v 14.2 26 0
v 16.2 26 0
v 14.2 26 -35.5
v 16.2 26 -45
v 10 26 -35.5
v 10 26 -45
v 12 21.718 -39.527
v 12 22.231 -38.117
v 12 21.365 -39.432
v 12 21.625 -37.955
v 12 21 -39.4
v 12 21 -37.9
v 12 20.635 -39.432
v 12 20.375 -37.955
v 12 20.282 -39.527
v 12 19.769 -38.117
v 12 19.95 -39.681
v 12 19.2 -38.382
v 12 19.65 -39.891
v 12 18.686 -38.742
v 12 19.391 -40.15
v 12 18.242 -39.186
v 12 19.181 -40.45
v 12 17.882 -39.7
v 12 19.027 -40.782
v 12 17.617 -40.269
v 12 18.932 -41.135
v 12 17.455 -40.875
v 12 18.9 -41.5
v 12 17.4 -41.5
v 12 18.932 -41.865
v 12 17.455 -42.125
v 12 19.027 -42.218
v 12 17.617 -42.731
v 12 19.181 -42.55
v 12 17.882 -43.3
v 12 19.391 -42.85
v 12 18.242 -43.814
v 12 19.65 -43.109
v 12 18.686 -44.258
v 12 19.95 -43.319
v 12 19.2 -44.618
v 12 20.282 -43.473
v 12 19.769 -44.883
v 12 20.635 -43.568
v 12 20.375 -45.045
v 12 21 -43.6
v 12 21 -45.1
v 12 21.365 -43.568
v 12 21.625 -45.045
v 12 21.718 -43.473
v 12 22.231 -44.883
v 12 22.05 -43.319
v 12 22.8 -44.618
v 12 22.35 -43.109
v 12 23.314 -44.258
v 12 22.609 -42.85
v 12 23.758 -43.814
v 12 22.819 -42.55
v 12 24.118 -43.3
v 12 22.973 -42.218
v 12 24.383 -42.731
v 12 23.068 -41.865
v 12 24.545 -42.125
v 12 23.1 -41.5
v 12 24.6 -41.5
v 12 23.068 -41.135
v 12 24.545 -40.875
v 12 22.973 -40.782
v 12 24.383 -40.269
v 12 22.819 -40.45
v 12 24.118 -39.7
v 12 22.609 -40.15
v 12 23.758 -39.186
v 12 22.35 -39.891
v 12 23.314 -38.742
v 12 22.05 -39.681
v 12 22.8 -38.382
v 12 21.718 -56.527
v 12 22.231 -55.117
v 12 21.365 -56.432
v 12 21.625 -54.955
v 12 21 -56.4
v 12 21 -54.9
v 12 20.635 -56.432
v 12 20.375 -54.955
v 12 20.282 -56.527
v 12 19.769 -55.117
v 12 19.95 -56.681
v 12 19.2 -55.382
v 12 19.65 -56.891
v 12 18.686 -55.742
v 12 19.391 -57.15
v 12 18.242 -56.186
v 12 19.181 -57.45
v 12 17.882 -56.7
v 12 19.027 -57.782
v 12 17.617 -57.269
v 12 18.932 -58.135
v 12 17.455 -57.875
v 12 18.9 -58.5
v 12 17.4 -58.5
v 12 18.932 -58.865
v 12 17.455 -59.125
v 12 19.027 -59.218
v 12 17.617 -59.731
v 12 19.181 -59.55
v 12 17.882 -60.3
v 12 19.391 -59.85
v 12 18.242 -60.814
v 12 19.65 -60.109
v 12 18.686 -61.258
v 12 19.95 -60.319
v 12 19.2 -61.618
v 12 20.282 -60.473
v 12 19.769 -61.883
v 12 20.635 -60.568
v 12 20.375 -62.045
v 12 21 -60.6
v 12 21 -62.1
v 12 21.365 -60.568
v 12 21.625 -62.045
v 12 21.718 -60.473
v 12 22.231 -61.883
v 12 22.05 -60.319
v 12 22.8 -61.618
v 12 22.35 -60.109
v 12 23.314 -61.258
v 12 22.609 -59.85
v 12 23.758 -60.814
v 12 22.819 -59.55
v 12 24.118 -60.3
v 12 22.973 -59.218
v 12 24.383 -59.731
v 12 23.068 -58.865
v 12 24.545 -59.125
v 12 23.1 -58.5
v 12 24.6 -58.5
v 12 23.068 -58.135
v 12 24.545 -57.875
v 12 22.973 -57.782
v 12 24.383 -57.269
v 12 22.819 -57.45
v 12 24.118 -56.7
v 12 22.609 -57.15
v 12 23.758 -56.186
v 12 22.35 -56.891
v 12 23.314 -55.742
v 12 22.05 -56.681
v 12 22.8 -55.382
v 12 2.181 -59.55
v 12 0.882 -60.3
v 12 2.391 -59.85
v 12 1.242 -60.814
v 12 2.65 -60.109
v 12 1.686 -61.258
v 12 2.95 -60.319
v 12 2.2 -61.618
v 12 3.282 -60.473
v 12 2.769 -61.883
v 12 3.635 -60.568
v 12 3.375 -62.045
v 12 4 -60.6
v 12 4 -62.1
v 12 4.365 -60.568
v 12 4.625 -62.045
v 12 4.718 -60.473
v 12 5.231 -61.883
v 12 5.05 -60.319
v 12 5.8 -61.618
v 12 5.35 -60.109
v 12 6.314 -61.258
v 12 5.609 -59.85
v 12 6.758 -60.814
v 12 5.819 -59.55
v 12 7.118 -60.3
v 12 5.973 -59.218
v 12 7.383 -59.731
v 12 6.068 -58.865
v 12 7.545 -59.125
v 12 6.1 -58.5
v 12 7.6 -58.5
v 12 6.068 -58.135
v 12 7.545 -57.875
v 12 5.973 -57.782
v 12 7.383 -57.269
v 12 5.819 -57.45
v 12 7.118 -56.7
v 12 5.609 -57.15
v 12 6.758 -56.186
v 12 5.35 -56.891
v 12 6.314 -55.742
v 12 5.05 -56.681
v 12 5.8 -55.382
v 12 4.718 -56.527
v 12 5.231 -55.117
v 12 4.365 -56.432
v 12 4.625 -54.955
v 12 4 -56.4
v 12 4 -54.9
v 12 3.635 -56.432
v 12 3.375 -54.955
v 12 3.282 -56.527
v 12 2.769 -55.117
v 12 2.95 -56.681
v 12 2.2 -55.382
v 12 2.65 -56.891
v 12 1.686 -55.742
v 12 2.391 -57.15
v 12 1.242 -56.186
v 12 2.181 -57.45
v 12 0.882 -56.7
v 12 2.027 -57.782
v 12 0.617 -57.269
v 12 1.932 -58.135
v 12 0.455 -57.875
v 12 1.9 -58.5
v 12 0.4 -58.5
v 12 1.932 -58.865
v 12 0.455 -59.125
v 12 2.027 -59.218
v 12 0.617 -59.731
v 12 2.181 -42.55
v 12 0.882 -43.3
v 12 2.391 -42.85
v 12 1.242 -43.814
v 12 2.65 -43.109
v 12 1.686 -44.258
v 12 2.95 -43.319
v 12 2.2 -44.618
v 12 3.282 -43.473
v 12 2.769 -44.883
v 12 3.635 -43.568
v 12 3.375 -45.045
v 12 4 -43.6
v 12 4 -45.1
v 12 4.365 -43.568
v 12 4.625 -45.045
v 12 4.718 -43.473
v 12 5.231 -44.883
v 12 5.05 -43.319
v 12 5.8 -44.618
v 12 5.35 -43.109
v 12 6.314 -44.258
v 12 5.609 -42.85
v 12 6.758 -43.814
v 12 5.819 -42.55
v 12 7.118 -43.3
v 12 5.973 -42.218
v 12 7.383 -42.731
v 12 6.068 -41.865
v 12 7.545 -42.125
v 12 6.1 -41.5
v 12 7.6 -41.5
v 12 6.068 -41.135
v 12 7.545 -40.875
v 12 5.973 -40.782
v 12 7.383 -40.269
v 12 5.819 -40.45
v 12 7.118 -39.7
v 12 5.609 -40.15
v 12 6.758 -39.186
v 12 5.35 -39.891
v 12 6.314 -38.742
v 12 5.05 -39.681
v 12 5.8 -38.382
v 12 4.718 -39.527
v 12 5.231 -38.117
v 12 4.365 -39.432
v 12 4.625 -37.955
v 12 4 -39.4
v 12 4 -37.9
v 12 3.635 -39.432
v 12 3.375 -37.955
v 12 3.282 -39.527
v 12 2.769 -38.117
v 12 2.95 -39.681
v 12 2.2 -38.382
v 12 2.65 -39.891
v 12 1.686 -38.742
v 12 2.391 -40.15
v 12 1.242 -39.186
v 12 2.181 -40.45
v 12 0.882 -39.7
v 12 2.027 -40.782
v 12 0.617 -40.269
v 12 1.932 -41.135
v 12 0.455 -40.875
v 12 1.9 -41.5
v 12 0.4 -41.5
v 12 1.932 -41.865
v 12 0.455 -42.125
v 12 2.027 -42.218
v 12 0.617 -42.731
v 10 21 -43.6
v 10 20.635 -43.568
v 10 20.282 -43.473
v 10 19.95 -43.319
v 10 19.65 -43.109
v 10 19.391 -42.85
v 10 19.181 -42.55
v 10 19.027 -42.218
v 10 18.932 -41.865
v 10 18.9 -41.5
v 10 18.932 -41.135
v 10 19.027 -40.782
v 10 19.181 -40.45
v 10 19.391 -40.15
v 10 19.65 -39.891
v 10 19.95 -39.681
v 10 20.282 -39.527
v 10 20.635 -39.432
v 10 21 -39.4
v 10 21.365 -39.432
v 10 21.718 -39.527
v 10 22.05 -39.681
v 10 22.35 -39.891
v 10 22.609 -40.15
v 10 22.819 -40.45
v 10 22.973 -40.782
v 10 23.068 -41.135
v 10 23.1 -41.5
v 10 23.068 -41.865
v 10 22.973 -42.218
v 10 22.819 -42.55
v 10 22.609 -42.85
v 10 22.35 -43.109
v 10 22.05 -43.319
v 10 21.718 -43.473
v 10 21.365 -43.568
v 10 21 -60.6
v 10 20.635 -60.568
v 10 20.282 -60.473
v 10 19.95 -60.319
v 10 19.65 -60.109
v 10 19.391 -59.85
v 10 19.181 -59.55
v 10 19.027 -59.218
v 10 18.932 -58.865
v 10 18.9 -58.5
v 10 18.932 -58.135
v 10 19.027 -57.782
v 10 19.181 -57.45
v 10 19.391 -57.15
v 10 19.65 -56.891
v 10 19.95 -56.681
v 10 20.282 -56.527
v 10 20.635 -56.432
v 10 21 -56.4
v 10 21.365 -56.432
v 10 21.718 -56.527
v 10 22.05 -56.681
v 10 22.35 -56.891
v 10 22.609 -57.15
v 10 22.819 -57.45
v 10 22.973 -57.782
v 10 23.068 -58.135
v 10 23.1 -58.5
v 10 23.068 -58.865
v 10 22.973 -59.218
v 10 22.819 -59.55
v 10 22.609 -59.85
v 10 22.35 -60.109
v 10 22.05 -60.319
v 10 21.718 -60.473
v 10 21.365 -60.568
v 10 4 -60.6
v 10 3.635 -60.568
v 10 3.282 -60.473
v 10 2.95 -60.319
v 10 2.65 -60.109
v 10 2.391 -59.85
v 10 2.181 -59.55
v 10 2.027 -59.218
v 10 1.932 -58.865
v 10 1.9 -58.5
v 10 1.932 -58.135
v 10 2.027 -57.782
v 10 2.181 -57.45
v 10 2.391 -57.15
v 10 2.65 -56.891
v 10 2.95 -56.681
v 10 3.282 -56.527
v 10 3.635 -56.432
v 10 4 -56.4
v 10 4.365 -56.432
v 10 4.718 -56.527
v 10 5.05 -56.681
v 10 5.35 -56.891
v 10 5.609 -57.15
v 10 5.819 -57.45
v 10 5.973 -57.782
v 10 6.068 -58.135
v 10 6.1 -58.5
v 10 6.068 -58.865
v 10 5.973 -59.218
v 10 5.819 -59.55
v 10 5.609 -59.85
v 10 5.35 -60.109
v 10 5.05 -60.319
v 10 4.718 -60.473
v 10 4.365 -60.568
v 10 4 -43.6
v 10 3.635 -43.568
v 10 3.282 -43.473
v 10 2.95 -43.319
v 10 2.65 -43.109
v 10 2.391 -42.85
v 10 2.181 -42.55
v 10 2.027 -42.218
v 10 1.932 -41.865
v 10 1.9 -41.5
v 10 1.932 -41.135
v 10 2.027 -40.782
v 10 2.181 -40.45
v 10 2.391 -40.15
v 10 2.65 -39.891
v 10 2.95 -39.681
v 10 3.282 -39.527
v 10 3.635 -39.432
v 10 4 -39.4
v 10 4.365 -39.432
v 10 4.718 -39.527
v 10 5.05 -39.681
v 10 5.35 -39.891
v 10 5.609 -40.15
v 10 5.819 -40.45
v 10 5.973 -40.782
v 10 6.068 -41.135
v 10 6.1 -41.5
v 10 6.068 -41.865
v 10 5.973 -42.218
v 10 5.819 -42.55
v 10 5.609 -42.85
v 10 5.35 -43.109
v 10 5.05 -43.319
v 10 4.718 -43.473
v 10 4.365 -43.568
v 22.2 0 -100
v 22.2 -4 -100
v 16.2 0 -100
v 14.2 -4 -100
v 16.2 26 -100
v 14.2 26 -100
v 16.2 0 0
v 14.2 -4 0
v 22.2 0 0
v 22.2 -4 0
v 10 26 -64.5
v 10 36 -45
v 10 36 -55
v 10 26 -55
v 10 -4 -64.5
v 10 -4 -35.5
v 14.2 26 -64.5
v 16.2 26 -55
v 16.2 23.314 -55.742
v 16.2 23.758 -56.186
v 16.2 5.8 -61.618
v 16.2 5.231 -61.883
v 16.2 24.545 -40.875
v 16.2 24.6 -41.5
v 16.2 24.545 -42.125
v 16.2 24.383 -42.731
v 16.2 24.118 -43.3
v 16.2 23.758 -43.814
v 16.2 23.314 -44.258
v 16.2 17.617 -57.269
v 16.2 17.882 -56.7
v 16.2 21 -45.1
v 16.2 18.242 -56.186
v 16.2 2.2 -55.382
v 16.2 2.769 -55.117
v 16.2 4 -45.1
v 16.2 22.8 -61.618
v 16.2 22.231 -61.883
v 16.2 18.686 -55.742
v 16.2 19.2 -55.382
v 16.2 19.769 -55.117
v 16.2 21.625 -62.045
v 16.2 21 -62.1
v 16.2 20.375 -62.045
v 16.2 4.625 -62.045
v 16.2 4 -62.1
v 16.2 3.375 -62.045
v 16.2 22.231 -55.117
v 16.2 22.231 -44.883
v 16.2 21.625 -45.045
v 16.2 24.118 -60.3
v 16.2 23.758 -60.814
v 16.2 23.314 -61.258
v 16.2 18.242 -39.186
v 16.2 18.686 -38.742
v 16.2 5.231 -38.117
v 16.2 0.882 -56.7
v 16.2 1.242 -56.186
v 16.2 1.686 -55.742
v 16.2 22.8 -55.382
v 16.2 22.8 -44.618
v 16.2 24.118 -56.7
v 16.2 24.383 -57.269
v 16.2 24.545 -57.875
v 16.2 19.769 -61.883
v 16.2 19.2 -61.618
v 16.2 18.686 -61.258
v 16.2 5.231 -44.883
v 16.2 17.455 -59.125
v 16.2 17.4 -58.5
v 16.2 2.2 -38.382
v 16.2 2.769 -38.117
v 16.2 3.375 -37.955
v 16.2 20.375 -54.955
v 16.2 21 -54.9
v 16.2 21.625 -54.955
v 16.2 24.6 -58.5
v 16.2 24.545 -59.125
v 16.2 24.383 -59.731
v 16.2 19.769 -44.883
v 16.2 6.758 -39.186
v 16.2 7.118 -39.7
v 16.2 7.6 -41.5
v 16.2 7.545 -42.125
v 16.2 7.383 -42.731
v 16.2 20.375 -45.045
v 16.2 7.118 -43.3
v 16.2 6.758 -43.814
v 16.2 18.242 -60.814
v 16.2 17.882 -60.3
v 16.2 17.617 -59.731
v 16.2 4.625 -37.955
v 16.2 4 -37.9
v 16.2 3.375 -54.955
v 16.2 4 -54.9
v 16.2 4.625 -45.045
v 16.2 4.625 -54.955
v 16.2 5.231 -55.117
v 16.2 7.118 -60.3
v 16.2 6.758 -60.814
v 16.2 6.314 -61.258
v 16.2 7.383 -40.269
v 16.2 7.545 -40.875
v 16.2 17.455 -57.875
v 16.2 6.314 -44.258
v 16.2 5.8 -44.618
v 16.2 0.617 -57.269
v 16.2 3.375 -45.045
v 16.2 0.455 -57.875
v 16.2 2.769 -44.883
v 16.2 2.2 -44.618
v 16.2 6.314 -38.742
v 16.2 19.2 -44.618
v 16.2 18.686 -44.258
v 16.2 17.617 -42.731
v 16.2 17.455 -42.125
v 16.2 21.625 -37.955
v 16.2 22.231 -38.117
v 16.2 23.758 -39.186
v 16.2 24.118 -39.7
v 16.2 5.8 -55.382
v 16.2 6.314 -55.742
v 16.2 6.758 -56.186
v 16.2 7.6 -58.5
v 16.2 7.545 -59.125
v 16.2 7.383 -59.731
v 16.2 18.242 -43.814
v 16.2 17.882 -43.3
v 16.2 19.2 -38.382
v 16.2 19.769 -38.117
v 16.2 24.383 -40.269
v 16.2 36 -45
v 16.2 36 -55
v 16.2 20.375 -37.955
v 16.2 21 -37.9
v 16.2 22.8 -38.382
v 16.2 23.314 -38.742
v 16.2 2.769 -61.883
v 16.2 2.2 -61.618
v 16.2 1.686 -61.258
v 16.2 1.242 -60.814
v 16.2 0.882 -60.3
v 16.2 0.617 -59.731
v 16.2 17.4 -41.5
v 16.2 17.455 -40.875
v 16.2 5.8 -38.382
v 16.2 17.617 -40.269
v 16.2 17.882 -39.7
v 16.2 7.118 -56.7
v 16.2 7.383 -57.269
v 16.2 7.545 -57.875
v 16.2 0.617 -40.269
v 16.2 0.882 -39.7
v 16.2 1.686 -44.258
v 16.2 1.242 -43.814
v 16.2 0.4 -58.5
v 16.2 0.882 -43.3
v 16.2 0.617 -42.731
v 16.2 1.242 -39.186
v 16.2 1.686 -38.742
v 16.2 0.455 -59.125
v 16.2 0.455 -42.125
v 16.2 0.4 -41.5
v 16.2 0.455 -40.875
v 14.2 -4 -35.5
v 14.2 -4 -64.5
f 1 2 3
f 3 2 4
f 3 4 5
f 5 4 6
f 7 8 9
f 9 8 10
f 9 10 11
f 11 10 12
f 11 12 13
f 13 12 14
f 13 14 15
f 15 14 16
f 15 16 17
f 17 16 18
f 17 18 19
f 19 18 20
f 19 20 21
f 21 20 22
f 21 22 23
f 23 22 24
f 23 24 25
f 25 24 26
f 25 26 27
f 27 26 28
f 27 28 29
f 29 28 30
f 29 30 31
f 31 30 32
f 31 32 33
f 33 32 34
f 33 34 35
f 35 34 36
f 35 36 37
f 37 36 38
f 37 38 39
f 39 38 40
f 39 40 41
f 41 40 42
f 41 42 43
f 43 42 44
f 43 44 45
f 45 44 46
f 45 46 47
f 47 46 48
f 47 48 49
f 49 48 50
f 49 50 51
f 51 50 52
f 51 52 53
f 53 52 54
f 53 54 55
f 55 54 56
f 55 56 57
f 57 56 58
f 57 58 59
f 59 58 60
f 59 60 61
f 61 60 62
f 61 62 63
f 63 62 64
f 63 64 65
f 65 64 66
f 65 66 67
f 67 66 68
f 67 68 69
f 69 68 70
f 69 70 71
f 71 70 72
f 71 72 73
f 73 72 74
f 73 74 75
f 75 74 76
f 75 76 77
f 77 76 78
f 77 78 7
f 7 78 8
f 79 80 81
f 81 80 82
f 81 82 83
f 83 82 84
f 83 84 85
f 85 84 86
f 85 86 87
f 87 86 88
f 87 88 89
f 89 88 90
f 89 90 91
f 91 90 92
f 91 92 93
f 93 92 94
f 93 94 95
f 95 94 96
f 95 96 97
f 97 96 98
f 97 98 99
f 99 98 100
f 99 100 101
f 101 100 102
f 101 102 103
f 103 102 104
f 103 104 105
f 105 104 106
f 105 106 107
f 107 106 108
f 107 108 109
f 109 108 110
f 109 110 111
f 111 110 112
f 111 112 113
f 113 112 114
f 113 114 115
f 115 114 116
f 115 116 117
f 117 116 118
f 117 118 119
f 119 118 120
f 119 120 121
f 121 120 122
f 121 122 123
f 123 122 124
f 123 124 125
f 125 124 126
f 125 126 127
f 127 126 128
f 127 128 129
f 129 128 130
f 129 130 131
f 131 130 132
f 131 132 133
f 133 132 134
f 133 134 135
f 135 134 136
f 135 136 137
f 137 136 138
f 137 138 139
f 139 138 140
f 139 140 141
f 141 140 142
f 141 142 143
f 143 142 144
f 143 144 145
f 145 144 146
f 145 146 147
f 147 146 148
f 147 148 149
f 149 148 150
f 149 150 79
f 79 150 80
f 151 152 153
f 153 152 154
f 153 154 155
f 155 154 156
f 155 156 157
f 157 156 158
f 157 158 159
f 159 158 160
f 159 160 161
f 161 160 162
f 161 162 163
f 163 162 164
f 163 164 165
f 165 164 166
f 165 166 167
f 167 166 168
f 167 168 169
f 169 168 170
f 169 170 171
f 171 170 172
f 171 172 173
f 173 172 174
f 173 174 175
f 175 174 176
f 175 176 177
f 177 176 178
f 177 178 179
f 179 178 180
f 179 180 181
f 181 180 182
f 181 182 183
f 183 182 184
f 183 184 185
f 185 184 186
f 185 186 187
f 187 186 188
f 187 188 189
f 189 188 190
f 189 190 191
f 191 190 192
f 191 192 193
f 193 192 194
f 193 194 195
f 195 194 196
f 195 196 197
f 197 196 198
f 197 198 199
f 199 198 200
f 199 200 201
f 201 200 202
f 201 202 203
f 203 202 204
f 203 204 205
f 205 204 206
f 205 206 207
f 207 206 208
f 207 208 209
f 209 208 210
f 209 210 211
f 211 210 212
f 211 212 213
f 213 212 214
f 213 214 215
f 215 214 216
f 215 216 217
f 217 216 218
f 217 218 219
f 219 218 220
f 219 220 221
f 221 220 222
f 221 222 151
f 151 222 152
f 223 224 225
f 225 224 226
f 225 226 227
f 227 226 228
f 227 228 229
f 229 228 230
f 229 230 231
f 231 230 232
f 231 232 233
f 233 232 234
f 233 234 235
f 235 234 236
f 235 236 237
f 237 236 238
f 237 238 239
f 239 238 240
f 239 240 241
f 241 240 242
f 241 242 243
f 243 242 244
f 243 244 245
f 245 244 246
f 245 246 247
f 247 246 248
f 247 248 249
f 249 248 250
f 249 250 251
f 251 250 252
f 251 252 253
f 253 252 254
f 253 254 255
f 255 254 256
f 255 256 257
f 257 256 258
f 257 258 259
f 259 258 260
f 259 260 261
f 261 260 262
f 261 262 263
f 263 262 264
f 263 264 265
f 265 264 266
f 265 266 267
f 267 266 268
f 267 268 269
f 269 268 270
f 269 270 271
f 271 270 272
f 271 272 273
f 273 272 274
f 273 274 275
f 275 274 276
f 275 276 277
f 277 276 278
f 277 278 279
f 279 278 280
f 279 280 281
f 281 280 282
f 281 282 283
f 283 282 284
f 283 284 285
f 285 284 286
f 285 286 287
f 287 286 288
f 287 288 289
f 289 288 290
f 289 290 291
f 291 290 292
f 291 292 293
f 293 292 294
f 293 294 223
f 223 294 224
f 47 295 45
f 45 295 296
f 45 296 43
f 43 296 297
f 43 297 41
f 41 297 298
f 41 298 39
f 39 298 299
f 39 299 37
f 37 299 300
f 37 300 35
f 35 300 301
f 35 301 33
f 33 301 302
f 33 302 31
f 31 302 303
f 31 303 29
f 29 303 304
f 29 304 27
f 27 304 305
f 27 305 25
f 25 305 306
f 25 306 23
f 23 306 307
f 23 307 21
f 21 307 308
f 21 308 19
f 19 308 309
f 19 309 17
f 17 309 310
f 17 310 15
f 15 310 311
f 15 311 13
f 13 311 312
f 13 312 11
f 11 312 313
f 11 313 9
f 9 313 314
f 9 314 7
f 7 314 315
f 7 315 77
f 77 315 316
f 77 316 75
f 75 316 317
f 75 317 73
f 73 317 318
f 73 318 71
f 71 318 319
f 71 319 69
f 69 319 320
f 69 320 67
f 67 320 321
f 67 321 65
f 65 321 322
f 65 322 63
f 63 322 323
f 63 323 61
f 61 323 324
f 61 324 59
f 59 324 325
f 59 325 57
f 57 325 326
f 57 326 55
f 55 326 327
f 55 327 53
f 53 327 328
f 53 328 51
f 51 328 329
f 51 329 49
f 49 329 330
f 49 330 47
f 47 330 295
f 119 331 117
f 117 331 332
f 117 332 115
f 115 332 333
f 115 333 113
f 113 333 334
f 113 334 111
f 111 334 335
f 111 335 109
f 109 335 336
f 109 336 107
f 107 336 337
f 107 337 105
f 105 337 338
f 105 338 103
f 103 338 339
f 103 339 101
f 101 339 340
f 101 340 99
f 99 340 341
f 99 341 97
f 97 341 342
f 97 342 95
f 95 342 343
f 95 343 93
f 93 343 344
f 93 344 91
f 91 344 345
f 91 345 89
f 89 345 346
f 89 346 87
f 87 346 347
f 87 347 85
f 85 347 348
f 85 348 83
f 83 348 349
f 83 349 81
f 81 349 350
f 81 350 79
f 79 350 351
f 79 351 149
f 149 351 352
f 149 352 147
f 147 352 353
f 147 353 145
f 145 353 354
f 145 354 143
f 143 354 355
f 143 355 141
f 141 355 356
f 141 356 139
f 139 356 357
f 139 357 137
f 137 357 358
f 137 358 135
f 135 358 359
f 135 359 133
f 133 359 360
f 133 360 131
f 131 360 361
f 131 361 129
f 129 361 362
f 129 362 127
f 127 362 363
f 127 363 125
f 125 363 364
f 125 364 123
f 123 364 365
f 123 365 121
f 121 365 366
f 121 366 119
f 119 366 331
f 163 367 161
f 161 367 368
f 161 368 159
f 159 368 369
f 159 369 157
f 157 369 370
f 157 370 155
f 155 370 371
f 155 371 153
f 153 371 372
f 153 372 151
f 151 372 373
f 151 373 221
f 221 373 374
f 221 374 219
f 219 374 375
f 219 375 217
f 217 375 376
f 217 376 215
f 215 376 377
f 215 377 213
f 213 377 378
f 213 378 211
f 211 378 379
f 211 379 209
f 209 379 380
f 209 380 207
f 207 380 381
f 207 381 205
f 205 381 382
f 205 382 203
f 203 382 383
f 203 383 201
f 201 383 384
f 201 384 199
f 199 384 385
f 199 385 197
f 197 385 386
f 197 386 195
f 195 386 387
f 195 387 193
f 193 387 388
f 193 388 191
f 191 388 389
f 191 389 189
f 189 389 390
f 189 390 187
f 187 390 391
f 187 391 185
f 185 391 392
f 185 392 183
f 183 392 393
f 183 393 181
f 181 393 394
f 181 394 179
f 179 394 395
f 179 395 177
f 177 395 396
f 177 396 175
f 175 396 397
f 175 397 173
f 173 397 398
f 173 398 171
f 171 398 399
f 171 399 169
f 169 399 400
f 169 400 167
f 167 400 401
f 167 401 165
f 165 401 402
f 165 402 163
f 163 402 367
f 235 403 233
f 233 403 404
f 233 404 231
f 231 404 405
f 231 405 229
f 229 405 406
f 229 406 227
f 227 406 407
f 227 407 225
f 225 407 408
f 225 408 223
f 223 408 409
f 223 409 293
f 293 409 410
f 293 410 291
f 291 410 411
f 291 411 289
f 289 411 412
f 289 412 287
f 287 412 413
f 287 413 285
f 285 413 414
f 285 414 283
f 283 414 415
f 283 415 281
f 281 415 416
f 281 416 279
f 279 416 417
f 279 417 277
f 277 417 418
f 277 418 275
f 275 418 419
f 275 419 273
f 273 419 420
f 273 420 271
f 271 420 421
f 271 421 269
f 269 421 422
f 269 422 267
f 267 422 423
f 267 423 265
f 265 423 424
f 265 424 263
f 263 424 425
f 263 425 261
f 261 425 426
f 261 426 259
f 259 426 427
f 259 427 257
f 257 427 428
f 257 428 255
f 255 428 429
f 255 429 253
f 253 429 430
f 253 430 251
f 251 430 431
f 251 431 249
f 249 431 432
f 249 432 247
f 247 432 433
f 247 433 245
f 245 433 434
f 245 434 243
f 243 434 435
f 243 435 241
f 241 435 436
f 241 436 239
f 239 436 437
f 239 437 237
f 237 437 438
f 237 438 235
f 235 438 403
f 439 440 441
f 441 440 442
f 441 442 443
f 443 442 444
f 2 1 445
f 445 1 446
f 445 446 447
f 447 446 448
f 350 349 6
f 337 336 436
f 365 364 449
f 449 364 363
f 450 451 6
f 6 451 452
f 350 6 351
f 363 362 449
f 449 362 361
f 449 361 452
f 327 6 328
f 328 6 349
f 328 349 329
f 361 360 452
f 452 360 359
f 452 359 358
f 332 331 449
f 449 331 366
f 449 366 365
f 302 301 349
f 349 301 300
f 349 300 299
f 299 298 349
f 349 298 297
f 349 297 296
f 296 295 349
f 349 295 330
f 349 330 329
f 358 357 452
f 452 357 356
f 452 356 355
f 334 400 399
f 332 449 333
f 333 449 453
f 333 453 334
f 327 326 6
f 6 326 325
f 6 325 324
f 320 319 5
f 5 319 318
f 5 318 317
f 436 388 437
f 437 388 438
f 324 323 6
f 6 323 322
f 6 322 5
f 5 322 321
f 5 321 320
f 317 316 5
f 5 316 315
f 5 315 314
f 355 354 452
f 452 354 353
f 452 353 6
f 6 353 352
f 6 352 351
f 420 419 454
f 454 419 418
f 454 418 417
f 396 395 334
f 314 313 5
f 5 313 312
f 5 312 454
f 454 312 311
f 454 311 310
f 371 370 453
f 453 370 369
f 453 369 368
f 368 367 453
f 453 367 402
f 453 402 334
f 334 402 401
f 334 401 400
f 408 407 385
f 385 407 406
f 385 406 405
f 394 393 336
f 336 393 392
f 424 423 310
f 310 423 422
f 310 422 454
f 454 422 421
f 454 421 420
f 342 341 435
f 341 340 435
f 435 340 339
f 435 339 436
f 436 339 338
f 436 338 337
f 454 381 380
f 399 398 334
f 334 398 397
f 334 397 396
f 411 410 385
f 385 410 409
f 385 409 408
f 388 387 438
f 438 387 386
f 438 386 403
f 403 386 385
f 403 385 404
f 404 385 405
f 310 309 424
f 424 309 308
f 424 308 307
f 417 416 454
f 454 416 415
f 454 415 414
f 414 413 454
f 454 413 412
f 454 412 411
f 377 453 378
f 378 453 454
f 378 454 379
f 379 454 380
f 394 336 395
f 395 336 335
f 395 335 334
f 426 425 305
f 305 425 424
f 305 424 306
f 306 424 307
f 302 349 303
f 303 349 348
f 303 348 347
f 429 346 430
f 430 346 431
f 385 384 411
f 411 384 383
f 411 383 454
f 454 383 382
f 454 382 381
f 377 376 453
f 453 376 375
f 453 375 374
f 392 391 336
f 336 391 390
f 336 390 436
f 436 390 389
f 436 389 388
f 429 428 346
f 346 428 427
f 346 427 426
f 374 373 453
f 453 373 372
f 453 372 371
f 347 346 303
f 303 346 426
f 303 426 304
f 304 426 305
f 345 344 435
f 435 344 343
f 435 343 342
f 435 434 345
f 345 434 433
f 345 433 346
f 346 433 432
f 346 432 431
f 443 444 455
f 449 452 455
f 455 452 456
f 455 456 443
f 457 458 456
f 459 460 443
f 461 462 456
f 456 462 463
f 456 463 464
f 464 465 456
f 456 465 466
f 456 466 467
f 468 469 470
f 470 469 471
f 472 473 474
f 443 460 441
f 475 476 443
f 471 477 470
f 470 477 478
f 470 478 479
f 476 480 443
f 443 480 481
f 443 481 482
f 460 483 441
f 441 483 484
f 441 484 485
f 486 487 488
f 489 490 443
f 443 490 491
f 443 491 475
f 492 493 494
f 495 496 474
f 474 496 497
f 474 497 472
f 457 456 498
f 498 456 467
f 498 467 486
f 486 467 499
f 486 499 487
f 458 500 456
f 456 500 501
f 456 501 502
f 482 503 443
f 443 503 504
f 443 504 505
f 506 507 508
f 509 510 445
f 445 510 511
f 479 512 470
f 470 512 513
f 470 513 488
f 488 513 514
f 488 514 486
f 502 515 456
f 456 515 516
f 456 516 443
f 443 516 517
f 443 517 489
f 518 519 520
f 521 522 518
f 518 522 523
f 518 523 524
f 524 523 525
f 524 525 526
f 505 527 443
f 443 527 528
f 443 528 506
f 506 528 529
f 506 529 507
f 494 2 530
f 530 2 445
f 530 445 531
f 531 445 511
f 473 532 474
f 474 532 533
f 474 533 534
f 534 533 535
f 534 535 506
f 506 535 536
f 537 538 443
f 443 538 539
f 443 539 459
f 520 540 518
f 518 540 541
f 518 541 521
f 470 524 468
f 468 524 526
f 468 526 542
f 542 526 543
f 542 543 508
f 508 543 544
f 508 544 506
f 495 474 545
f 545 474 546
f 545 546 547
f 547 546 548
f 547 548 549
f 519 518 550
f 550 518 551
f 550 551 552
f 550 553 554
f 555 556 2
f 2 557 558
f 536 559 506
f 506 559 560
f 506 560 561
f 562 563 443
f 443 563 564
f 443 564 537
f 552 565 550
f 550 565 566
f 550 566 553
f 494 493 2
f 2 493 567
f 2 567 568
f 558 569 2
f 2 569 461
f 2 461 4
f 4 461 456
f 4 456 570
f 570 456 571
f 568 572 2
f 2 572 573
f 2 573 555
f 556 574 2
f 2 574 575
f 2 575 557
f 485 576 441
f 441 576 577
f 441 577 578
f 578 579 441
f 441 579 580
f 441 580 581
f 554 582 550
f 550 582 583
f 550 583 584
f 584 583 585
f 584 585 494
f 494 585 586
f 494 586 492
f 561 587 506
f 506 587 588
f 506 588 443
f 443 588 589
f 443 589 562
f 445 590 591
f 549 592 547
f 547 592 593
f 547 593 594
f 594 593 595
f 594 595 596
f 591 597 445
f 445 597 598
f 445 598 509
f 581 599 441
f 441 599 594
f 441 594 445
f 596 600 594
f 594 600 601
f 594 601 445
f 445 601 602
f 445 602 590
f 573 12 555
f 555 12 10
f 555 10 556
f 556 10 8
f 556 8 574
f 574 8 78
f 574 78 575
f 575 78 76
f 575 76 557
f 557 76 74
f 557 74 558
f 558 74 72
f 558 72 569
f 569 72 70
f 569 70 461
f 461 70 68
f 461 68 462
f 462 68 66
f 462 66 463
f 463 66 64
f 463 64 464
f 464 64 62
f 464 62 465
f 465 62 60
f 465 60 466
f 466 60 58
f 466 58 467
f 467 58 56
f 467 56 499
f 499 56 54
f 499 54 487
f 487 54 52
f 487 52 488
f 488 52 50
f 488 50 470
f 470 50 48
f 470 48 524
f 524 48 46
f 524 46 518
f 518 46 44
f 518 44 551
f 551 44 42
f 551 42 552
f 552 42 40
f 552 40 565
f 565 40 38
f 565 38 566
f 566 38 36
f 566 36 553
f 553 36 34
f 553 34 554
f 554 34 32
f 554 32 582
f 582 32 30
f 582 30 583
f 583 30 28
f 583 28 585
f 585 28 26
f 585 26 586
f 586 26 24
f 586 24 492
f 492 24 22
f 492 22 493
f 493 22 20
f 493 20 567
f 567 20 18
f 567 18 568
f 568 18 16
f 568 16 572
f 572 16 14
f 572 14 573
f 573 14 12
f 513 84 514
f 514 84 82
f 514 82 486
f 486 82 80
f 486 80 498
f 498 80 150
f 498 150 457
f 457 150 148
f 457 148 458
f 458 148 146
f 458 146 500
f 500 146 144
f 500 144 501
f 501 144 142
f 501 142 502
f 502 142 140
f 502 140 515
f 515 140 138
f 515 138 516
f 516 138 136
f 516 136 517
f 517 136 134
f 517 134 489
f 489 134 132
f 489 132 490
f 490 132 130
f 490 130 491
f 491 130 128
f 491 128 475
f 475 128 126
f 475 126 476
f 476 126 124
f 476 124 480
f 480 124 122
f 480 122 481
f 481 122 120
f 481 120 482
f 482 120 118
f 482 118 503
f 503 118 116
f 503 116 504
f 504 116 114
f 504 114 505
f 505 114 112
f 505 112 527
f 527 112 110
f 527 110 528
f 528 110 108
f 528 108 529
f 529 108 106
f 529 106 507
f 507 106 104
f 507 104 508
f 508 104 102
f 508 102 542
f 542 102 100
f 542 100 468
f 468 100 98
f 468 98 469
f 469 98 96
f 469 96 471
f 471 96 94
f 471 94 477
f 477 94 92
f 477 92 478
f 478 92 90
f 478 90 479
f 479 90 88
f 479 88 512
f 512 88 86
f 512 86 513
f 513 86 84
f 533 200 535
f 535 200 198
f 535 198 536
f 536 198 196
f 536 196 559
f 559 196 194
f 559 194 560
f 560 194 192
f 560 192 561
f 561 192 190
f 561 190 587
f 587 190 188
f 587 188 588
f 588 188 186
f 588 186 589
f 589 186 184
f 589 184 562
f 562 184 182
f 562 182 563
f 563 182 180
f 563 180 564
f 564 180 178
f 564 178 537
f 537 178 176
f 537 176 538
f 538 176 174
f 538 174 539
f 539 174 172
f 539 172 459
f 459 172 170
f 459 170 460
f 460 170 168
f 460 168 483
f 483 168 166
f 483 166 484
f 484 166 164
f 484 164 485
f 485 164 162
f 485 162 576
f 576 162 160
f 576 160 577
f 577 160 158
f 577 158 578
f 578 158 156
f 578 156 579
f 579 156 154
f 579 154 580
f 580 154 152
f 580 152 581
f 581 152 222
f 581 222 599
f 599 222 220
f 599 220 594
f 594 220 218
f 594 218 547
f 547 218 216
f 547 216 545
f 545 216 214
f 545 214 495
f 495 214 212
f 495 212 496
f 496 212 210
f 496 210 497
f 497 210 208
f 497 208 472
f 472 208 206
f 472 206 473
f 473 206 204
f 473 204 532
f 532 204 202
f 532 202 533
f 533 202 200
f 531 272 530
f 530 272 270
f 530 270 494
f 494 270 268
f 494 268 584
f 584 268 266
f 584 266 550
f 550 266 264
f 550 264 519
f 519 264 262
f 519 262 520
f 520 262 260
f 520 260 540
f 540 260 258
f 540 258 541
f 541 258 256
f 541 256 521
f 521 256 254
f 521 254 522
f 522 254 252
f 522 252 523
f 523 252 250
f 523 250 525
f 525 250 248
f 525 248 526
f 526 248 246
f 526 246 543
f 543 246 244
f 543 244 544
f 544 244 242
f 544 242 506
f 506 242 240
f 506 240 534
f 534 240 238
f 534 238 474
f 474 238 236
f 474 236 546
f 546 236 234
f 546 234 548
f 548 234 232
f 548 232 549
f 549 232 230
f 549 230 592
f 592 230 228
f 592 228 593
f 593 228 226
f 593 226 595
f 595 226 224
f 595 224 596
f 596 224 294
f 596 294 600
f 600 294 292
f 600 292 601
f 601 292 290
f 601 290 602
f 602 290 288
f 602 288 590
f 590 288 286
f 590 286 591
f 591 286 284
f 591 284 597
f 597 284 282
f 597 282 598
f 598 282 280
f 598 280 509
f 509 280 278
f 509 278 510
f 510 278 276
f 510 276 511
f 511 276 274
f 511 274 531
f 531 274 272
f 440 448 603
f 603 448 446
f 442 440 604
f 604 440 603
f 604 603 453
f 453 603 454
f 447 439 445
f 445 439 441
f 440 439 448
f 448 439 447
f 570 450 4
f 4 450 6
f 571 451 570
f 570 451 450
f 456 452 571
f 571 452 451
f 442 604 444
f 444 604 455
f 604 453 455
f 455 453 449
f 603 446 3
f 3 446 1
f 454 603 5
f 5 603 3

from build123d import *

# Parameters (mm, degrees)
SKETCH1_W               = 100
SKETCH1_H               = 26
BOSS_EXTRUDE1_DEPTH     = 2
BOSS_EXTRUDE2_DEPTH     = 100
SKETCH3_W               = 25
SKETCH3_H               = 28
BOSS_EXTRUDE3_DEPTH     = 4
SKETCH4_R               = 2.1
CUT_EXTRUDE1_DEPTH      = 106.39449701
SKETCH5_W               = 120
SKETCH5_H               = 46
SKETCH5_W_2             = 100
SKETCH5_H_2             = 26
CUT_EXTRUDE2_DEPTH      = 105.537074763
CUT_EXTRUDE2_DEPTH_BACK = 105.537074763
SKETCH6_W               = 100
SKETCH6_H               = 26
SKETCH6_R               = 3.6
BOSS_EXTRUDE4_DEPTH     = 4.2
SKETCH8_W               = 100
SKETCH8_H               = 4
BOSS_EXTRUDE5_DEPTH     = 6
SKETCH9_W               = 100
SKETCH9_H               = 4
BOSS_EXTRUDE6_DEPTH     = 10.2
SKETCH10_W              = 4
SKETCH10_H              = 37.5
CUT_EXTRUDE3_DEPTH      = 106.682732743
SKETCH11_W              = 4
SKETCH11_H              = 25
CUT_EXTRUDE4_DEPTH      = 107.737247482
SKETCH13_W              = 10
SKETCH13_H              = 10
BOSS_EXTRUDE7_DEPTH     = 6.2
SKETCH14_W              = 4.2
SKETCH14_H              = 35.5
CUT_EXTRUDE5_DEPTH      = 107.737247482


with BuildPart() as part:
    # Sketch1 → Boss-Extrude1 (new body)
    with BuildSketch(Plane(origin=(0, 0, 0), x_dir=(0, 0, -1), z_dir=(1, 0, 0))):
        with Locations((50, 13)):
            Rectangle(SKETCH1_W, SKETCH1_H)
    extrude(amount=BOSS_EXTRUDE1_DEPTH)

    # Sketch2 → Boss-Extrude2 (add)
    with BuildSketch(Plane.XY):
        Polygon((2, 26), (2, 28), (-12, 28), (-12, 24), (-10, 24), (-10, 26), align=None)
    extrude(amount=-BOSS_EXTRUDE2_DEPTH)

    # Sketch3 → Boss-Extrude3 (add)
    with BuildSketch(Plane(origin=(2, 0, 0), x_dir=(0, 0, -1), z_dir=(1, 0, 0))):
        with Locations((50, 14)):
            Rectangle(SKETCH3_W, SKETCH3_H)
    extrude(amount=BOSS_EXTRUDE3_DEPTH)

    # Sketch4 → Cut-Extrude1 (cut, through all)
    with BuildSketch(Plane(origin=(6, 0, 0), x_dir=(0, 0, -1), z_dir=(1, 0, 0))):
        with Locations((41.5, 21)):
            Circle(SKETCH4_R)
        with Locations((58.5, 21)):
            Circle(SKETCH4_R)
        with Locations((58.5, 4)):
            Circle(SKETCH4_R)
        with Locations((41.5, 4)):
            Circle(SKETCH4_R)
    extrude(amount=-CUT_EXTRUDE1_DEPTH, mode=Mode.SUBTRACT)


with BuildPart() as body_2:
    # Mirror1: mirrored copy
    add(part.part.mirror(Plane(origin=(6, 0, 0), x_dir=(0, 0, 1), z_dir=(1, 0, 0))))

    # Sketch5 → Cut-Extrude2 (cut, two sides)
    with BuildSketch(Plane(origin=(12, 0, 0), x_dir=(0, 0, -1), z_dir=(1, 0, 0))) as cut_extrude2_sk:
        with Locations((50, 13)):
            Rectangle(SKETCH5_W, SKETCH5_H)
        with Locations((50, 13)):
            Rectangle(SKETCH5_W_2, SKETCH5_H_2, mode=Mode.SUBTRACT)
    extrude(amount=CUT_EXTRUDE2_DEPTH, mode=Mode.SUBTRACT)
    extrude(cut_extrude2_sk.sketch, amount=-CUT_EXTRUDE2_DEPTH_BACK, mode=Mode.SUBTRACT)


with BuildPart() as body_2_2:
    # of the pieces the cut leaves, the one that is kept (cut_extrude2_keep)
    add(body_2.part.solids().sort_by_distance((12, 0, 0))[0])

    # Sketch6 → Boss-Extrude4 (add)
    with BuildSketch(Plane(origin=(12, 0, 0), x_dir=(0, 0, -1), z_dir=(1, 0, 0))):
        with Locations((50, 13)):
            Rectangle(SKETCH6_W, SKETCH6_H)
        with Locations((41.5, 21)):
            Circle(SKETCH6_R, mode=Mode.SUBTRACT)
        with Locations((58.5, 21)):
            Circle(SKETCH6_R, mode=Mode.SUBTRACT)
        with Locations((58.5, 4)):
            Circle(SKETCH6_R, mode=Mode.SUBTRACT)
        with Locations((41.5, 4)):
            Circle(SKETCH6_R, mode=Mode.SUBTRACT)
    extrude(amount=BOSS_EXTRUDE4_DEPTH)



with BuildPart() as body_2_3:
    # Sketch8 → Boss-Extrude5 (new body)
    with BuildSketch(Plane(origin=(16.2, 0, 0), x_dir=(0, 0, -1), z_dir=(1, 0, 0))):
        with Locations((50, -2)):
            Rectangle(SKETCH8_W, SKETCH8_H)
    extrude(amount=BOSS_EXTRUDE5_DEPTH)


with BuildPart() as body_2_2_1:
    add(body_2_2.part)

    add(body_2_3.part)  # Boss-Extrude6 merges body 2 3
    # Sketch9 → Boss-Extrude6 (add)
    with BuildSketch(Plane.ZY.offset(-16.2)):
        with Locations((-50, -2)):
            Rectangle(SKETCH9_W, SKETCH9_H)
    extrude(amount=BOSS_EXTRUDE6_DEPTH)

    # Sketch10 → Cut-Extrude3 (cut, through all)
    with BuildSketch(Plane(origin=(0, 0, 0), x_dir=(1, 0, 0), z_dir=(0, 1, 0))):
        with Locations((8, 81.25)):
            Rectangle(SKETCH10_W, SKETCH10_H)
        with Locations((8, 18.75)):
            Rectangle(SKETCH10_W, SKETCH10_H)
    extrude(amount=-CUT_EXTRUDE3_DEPTH, mode=Mode.SUBTRACT)

    # Sketch11 → Cut-Extrude4 (cut, through all)
    with BuildSketch(Plane(origin=(0, 26, 0), x_dir=(1, 0, 0), z_dir=(0, 1, 0))):
        with Locations((8, 50)):
            Rectangle(SKETCH11_W, SKETCH11_H)
    extrude(amount=-CUT_EXTRUDE4_DEPTH, mode=Mode.SUBTRACT)

    # Sketch13 → Boss-Extrude7 (add)
    with BuildSketch(Plane.ZY.offset(-10)):
        with Locations((-50, 31)):
            Rectangle(SKETCH13_W, SKETCH13_H)
    extrude(amount=-BOSS_EXTRUDE7_DEPTH)

    # Sketch14 → Cut-Extrude5 (cut, through all)
    with BuildSketch(Plane(origin=(0, 26, 0), x_dir=(1, 0, 0), z_dir=(0, 1, 0))):
        with Locations((12.1, 17.75)):
            Rectangle(SKETCH14_W, SKETCH14_H)
        with Locations((12.1, 82.25)):
            Rectangle(SKETCH14_W, SKETCH14_H)
    extrude(amount=-CUT_EXTRUDE5_DEPTH, mode=Mode.SUBTRACT)


solid = body_2_2_1.part
